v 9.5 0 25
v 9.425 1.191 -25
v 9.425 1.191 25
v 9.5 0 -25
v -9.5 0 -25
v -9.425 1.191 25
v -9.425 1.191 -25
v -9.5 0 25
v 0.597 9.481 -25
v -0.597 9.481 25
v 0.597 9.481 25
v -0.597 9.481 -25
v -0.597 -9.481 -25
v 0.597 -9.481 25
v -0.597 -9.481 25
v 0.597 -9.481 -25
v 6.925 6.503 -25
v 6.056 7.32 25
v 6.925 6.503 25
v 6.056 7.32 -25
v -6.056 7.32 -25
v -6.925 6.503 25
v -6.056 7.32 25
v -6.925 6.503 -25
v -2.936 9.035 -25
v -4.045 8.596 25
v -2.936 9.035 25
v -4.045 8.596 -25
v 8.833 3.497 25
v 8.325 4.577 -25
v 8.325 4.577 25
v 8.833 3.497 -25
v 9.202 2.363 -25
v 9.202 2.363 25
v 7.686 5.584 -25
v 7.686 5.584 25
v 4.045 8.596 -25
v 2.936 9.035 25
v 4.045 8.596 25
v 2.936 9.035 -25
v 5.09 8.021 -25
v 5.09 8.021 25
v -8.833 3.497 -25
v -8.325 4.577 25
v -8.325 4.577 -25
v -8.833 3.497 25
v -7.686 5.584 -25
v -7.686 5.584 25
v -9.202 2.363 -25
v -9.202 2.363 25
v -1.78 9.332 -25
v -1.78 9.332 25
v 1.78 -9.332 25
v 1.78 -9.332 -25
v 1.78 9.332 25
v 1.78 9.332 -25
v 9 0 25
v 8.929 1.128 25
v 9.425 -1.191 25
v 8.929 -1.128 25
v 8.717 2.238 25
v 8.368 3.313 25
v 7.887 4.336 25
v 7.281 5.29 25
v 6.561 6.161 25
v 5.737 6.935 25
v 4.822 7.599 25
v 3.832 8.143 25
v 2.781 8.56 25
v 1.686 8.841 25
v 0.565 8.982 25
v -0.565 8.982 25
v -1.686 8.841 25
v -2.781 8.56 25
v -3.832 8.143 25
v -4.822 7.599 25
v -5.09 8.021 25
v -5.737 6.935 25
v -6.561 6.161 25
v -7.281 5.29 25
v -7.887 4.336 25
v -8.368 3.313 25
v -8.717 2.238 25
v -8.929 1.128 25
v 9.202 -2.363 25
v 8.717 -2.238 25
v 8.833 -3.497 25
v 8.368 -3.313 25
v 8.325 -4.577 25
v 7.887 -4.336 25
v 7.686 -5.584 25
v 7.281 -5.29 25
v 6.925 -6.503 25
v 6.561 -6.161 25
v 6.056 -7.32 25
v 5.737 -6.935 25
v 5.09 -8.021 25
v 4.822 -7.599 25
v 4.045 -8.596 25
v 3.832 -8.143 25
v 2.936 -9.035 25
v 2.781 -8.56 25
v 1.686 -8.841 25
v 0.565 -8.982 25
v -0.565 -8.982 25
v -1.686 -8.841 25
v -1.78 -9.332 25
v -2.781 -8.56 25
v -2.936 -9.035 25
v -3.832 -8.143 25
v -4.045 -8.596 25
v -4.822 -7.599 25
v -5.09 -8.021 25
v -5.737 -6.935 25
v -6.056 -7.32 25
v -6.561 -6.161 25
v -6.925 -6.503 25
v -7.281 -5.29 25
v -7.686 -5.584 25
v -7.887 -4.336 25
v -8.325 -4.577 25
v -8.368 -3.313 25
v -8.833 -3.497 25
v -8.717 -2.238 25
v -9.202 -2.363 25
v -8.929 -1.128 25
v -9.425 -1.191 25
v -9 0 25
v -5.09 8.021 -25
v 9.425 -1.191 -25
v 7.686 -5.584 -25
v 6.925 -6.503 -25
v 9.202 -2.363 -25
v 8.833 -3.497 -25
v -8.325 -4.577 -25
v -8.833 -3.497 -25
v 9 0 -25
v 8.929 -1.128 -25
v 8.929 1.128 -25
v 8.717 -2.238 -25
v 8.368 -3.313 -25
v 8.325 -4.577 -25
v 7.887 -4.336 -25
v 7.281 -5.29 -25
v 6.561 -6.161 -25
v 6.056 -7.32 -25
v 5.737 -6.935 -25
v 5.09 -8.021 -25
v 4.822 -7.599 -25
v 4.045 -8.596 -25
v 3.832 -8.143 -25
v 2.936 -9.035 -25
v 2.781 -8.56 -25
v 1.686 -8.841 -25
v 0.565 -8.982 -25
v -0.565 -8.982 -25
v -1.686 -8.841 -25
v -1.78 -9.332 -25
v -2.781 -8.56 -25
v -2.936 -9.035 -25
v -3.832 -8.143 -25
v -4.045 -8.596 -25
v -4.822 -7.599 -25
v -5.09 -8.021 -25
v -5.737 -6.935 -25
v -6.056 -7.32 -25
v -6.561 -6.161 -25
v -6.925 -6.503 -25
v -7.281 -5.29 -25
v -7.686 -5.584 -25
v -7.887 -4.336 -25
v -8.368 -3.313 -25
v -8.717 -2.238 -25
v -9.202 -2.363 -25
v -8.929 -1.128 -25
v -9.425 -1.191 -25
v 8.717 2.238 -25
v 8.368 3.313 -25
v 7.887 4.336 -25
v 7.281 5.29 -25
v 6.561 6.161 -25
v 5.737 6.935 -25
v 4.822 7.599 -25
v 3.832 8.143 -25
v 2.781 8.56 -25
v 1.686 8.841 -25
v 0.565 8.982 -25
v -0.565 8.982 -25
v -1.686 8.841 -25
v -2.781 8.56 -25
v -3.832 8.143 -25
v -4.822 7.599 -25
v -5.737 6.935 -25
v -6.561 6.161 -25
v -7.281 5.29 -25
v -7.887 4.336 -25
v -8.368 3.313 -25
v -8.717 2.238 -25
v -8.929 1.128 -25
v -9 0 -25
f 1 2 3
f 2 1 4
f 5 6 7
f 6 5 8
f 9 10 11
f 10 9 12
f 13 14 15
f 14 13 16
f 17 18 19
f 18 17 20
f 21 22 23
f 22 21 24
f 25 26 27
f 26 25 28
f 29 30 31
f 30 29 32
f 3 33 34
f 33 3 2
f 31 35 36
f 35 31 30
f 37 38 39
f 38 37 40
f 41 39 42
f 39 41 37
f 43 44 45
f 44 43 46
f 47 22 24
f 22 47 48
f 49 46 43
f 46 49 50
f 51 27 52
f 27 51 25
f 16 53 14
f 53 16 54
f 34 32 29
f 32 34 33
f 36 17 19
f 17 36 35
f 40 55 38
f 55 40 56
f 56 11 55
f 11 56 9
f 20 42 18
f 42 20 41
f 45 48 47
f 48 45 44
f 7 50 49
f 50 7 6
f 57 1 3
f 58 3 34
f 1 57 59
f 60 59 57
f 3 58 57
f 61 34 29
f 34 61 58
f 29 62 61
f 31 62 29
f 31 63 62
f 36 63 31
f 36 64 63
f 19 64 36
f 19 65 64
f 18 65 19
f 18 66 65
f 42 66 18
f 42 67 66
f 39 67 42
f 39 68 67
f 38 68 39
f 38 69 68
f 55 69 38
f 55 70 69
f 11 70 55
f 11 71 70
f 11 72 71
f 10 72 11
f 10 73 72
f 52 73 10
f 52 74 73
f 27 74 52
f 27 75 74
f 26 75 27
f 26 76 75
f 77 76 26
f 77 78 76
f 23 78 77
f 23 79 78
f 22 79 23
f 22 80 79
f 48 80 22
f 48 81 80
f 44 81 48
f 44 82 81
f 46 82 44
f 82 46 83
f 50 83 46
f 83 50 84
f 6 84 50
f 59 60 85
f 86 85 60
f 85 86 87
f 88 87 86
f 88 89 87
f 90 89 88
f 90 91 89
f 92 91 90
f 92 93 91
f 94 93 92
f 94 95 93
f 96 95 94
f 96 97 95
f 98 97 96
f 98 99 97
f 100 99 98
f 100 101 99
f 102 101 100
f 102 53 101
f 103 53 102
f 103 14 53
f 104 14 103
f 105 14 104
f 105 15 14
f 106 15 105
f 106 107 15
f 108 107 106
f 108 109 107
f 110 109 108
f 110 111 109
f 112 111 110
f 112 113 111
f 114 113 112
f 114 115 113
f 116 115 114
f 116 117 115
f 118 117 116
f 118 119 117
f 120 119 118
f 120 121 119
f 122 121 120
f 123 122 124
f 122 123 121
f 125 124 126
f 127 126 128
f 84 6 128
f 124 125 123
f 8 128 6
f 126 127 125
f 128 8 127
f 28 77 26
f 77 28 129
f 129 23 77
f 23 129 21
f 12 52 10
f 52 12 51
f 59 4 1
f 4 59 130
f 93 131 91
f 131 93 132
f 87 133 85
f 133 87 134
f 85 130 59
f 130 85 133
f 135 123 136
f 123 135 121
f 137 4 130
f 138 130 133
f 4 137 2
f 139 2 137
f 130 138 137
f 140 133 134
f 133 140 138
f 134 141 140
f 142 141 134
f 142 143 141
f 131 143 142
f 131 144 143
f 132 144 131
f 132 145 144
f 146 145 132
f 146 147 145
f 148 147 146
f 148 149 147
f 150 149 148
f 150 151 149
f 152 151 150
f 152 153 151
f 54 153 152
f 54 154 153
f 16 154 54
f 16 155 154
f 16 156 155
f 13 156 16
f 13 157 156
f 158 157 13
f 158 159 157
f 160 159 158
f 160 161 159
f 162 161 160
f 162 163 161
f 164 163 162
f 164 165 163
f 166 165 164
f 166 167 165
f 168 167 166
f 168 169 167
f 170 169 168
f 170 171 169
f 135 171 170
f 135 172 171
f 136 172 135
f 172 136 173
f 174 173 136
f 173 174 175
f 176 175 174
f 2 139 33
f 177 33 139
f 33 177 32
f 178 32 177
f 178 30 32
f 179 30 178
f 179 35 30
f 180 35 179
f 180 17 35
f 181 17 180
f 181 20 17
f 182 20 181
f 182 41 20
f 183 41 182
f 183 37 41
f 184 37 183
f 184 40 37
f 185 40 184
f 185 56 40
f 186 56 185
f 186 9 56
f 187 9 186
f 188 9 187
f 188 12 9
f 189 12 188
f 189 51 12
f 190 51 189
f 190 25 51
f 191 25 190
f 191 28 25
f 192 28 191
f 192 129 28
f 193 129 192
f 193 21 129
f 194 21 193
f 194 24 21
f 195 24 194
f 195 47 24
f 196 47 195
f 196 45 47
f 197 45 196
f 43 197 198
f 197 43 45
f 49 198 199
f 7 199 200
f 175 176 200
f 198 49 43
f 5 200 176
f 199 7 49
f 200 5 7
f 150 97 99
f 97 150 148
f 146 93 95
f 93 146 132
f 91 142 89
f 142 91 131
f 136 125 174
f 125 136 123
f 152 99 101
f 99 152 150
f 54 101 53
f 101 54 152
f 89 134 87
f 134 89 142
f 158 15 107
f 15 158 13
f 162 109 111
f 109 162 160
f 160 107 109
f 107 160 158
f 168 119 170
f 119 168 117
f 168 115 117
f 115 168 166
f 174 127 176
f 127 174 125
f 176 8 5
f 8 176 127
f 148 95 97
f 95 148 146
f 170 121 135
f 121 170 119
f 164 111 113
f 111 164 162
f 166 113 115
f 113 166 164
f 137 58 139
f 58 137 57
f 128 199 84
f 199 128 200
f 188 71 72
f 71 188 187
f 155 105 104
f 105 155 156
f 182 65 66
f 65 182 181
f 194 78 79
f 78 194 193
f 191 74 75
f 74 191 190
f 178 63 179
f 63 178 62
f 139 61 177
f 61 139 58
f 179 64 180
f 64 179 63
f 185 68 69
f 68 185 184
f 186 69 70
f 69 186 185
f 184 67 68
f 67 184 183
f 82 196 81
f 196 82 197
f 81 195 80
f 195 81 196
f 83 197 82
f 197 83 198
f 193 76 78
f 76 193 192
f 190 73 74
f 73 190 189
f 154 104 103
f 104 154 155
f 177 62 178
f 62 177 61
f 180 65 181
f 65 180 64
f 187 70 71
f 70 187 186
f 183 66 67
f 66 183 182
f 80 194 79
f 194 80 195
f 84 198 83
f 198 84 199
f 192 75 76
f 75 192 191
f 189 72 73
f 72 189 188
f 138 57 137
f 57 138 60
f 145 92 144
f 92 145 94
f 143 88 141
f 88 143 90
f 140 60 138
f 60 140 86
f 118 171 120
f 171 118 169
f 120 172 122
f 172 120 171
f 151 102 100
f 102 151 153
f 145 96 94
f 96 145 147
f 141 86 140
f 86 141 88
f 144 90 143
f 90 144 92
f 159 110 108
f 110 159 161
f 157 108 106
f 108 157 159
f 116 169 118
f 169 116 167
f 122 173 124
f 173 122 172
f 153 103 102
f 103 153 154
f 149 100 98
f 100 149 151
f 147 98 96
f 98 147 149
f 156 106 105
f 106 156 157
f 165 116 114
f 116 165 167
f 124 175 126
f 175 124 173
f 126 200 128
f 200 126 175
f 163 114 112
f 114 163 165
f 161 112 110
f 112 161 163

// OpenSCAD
$fn = 50;


difference() {
	union() {
		translate(v = [0, 0, -25.0000000000]) {
			cylinder(h = 50, r = 9.5000000000);
		}
	}
	union() {
		translate(v = [0, 0, -100.0000000000]) {
			cylinder(h = 200, r = 9);
		}
	}
}
